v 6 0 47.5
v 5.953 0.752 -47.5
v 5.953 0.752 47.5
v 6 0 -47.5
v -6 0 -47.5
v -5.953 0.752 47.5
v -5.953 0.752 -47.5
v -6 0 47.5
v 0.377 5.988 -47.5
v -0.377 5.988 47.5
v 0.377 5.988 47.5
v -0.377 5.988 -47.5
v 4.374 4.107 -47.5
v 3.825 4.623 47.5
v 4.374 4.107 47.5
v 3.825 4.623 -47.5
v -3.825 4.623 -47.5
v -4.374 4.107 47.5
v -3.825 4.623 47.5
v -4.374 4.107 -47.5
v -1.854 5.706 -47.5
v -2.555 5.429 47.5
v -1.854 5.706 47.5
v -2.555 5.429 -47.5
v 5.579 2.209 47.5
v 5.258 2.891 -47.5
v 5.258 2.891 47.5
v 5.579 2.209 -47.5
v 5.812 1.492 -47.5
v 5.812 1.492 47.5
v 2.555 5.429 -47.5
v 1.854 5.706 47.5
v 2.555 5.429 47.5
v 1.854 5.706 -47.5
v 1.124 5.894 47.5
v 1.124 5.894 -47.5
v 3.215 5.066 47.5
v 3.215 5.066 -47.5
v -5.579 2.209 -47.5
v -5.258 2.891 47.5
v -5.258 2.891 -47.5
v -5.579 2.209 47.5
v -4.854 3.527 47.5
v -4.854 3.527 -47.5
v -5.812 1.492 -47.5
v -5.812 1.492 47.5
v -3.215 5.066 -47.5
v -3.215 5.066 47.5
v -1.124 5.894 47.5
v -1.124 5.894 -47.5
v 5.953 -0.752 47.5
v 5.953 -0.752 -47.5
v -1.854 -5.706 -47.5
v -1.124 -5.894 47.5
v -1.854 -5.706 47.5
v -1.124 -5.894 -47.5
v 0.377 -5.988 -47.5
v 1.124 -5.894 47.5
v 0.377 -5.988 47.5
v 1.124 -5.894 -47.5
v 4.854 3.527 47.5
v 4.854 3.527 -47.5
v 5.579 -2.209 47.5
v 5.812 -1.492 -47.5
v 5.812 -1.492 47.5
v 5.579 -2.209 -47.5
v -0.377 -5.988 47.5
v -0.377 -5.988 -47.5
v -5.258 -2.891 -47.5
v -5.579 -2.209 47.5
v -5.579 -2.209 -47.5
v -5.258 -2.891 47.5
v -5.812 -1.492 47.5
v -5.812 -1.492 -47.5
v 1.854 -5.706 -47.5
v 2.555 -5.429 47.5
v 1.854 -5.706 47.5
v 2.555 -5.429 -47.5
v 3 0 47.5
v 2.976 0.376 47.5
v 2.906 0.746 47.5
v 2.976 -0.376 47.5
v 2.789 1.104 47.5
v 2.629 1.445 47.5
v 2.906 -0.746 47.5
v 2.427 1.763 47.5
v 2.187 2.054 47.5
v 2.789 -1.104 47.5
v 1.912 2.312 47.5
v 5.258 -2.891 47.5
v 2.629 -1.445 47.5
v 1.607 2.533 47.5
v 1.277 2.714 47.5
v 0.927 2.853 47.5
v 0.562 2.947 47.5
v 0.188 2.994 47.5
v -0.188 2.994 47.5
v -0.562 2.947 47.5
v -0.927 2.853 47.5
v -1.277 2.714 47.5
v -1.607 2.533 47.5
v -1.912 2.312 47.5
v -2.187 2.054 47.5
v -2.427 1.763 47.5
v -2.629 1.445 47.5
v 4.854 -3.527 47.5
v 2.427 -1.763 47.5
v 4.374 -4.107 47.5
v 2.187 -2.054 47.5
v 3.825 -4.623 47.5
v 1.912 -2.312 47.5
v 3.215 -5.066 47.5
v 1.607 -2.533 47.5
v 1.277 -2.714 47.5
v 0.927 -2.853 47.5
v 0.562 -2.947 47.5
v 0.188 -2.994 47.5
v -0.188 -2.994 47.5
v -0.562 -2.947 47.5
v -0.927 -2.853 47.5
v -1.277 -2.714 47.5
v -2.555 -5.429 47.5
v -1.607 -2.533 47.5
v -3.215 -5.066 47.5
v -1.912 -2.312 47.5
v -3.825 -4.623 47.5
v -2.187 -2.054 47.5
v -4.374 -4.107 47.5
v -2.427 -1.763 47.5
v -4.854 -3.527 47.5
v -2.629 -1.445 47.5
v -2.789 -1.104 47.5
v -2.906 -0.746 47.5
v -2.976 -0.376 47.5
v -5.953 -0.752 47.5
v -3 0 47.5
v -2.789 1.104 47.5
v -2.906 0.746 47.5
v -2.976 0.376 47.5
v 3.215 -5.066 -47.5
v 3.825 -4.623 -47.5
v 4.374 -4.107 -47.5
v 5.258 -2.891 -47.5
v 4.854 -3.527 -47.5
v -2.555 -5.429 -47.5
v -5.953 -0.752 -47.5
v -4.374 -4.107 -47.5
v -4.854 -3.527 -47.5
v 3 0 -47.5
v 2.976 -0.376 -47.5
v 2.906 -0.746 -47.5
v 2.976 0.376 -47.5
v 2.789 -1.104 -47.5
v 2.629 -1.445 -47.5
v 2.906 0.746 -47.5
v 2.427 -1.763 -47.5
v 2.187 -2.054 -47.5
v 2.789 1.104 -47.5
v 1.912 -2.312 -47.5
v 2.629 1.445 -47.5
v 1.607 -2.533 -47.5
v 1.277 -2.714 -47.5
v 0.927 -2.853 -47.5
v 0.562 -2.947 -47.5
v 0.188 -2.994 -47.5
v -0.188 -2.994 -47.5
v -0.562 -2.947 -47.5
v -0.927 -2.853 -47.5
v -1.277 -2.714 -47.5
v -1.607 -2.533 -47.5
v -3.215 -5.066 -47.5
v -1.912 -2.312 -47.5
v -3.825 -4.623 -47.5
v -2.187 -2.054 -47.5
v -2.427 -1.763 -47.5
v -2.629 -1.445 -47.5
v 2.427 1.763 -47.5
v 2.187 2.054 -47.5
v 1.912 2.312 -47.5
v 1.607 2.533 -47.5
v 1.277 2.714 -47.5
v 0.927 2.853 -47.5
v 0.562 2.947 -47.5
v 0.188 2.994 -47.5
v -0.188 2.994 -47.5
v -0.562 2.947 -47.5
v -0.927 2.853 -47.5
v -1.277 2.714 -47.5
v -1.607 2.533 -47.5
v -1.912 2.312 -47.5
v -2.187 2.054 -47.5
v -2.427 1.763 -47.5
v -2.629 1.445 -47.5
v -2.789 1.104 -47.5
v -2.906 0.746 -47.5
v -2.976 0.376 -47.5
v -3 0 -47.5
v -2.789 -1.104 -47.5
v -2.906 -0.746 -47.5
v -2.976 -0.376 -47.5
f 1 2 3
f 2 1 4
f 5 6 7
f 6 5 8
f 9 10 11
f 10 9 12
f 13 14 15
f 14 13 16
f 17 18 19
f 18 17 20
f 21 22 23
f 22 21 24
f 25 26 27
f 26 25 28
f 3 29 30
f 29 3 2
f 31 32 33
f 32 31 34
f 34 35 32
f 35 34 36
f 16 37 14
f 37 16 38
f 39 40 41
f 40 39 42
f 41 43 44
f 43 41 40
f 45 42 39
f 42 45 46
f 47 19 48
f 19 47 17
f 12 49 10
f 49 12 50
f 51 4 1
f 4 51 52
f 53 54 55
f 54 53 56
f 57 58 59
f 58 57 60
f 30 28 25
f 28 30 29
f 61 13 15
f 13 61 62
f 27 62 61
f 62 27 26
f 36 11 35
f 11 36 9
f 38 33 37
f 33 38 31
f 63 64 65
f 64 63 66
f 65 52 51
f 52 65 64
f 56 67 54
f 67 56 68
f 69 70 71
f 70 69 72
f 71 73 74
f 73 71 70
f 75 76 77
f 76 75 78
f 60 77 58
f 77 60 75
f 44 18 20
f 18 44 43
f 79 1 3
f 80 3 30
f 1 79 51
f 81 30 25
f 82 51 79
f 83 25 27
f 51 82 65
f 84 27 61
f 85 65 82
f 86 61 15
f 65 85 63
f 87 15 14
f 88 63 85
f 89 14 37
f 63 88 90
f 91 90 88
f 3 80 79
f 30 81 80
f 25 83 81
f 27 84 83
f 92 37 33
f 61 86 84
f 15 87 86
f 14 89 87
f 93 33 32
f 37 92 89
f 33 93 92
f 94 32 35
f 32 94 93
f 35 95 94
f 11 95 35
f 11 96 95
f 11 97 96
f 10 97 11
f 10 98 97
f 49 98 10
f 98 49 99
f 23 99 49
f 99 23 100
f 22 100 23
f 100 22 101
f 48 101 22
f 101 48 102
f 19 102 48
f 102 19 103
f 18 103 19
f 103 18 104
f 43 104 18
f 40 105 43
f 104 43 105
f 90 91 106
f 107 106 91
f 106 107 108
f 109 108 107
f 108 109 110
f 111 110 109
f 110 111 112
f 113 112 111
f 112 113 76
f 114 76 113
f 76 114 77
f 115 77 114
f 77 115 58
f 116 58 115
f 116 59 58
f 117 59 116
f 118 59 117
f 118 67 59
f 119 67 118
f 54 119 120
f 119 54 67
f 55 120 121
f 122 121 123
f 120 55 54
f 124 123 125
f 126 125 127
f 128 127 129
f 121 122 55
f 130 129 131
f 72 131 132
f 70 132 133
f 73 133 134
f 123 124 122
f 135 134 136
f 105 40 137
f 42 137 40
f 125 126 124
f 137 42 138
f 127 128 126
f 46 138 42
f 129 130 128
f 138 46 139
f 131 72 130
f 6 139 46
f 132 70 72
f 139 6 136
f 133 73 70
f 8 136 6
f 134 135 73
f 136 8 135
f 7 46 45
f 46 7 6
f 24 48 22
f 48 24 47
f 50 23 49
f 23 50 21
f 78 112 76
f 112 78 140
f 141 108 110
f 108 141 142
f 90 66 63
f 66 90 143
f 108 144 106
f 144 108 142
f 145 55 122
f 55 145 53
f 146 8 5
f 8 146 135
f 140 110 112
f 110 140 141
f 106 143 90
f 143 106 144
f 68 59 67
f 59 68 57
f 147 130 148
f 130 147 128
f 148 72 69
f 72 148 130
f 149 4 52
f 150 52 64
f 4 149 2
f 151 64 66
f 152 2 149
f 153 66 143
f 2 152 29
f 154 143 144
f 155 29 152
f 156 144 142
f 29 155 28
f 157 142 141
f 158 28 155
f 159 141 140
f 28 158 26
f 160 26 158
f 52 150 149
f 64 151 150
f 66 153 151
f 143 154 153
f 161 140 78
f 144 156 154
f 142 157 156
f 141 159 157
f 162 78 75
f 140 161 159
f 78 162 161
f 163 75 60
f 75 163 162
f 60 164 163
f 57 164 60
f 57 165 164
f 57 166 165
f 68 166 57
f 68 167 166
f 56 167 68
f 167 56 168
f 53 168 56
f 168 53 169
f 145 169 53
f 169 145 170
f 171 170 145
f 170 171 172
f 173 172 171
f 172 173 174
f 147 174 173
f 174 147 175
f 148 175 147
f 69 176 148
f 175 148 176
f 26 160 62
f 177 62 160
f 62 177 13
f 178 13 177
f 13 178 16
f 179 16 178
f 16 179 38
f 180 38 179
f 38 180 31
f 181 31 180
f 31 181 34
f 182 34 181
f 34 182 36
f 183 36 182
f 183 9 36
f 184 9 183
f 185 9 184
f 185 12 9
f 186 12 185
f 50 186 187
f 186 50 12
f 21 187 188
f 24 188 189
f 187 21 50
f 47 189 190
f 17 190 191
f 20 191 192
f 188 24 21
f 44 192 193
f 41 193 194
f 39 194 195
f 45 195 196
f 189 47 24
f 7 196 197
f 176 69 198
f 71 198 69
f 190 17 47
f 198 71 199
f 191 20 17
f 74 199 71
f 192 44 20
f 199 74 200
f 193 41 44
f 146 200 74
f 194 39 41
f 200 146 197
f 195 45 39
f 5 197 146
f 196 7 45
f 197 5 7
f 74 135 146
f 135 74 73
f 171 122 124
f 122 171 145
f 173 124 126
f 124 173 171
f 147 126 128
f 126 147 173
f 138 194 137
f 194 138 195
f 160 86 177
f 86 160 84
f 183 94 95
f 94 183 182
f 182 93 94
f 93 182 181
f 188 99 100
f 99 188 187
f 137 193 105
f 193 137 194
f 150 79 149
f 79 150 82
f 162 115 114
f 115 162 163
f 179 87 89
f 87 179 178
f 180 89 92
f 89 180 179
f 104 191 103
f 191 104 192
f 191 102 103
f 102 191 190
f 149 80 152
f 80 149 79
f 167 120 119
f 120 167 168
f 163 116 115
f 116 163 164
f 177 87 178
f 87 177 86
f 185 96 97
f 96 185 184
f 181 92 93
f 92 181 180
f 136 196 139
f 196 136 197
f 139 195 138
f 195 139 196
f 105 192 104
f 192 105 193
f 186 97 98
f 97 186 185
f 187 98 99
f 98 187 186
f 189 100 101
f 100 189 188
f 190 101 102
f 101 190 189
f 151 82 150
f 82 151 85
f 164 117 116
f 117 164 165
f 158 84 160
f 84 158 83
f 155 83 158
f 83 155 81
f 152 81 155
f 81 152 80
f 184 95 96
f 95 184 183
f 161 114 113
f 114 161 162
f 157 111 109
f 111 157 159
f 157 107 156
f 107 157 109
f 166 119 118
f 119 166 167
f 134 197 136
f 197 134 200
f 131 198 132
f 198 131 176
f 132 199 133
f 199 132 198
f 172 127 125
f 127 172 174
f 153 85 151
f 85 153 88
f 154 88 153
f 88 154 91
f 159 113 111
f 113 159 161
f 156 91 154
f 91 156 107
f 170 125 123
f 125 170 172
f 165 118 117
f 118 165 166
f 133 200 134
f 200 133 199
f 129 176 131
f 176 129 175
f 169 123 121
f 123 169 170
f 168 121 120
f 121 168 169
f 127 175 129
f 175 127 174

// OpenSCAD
$fn = 50;


difference() {
	union() {
		translate(v = [0, 0, -47.5000000000]) {
			cylinder(h = 95, r = 6.0000000000);
		}
	}
	union() {
		translate(v = [0, 0, -100.0000000000]) {
			cylinder(h = 200, r = 3.0000000000);
		}
	}
}
